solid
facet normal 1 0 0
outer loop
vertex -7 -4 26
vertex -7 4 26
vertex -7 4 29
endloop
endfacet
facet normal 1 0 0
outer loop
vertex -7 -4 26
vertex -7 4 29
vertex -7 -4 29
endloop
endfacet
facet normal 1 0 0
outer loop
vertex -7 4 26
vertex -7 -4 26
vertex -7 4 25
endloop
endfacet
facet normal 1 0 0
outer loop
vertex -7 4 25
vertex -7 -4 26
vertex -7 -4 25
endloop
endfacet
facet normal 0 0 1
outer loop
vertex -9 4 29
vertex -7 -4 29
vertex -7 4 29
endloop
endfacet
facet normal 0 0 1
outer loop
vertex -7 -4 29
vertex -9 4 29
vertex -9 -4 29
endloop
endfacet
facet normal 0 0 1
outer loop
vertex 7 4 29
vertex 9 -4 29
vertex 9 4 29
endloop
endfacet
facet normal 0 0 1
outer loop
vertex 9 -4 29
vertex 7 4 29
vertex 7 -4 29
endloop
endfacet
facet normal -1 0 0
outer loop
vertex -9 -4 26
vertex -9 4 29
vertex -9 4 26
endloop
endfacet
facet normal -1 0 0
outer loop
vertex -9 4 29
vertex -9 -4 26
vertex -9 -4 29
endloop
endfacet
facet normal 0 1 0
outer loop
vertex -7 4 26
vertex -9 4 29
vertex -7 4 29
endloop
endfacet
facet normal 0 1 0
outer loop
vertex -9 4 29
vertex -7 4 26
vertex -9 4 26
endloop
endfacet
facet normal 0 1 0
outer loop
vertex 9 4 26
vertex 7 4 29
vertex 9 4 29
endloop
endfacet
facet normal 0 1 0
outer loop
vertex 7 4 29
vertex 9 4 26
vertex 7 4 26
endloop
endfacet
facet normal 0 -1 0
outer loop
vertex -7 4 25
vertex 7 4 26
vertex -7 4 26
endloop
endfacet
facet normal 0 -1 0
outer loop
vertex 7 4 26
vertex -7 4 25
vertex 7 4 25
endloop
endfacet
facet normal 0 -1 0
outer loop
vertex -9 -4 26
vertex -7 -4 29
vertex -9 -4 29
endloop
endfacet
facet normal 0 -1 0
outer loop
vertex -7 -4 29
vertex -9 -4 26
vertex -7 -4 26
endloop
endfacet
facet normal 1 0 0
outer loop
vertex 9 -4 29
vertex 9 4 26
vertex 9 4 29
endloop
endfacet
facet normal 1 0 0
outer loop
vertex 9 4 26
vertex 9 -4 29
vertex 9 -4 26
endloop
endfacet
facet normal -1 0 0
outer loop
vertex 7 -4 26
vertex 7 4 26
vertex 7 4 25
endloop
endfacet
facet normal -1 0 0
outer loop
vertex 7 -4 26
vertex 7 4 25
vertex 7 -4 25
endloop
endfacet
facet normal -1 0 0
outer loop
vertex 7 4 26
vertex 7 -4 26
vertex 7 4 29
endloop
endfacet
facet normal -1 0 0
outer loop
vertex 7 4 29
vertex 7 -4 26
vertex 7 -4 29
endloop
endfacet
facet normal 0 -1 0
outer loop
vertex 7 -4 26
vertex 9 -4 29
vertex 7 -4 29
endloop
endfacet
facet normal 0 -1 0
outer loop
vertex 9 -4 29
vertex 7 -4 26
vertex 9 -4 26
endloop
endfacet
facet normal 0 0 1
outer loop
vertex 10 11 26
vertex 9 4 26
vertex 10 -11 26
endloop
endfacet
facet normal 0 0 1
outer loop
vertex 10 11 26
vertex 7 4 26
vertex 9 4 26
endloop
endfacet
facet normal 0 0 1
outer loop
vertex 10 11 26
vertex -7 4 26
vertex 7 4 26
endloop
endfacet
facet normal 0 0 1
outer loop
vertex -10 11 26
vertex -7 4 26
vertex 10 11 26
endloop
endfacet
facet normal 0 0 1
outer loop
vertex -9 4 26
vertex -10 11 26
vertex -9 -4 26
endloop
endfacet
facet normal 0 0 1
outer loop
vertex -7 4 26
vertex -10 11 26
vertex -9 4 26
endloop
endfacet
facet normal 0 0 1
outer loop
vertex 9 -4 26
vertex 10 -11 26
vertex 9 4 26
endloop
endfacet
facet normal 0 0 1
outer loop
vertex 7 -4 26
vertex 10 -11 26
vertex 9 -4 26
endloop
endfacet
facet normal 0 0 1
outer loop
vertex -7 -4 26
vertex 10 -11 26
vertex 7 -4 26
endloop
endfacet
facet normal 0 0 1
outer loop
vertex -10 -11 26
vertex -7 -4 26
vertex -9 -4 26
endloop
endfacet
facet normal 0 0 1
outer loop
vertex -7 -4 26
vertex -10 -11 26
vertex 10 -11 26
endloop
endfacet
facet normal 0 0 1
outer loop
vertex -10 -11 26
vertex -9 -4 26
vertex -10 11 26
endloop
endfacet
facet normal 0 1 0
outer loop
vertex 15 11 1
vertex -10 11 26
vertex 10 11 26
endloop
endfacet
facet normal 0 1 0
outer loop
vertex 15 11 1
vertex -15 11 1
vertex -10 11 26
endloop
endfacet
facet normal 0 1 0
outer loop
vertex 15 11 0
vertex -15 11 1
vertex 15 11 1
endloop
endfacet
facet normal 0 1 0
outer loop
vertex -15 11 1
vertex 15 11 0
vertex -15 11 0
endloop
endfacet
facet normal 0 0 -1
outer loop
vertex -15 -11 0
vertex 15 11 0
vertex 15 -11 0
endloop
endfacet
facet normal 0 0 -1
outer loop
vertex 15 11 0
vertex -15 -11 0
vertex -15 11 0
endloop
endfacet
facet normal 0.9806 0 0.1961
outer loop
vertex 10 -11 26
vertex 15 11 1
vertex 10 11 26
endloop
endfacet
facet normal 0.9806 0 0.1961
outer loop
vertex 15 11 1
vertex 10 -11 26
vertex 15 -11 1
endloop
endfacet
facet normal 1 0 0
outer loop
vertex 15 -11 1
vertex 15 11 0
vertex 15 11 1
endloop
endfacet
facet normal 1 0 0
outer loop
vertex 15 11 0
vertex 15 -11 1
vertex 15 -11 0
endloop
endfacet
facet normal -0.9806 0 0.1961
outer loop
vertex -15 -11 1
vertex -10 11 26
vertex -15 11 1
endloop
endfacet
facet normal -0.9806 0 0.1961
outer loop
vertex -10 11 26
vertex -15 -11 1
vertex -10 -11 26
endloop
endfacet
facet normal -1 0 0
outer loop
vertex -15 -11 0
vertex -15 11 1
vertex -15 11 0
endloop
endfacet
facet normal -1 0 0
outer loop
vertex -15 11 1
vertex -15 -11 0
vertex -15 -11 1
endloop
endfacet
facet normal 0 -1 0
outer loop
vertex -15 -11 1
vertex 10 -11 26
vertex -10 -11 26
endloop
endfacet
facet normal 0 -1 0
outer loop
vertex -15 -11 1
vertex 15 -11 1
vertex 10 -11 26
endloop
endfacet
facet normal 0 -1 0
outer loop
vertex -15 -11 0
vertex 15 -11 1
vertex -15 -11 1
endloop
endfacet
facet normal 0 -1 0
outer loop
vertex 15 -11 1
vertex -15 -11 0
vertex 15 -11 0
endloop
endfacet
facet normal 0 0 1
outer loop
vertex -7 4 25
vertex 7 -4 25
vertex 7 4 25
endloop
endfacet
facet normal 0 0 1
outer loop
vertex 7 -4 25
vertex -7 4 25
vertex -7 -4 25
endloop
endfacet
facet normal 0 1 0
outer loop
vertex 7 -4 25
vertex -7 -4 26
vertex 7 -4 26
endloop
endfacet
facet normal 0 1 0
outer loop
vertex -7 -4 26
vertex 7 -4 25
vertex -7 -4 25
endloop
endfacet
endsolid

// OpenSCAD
// ============================
// Screen Support Block with U-Cradle
// ============================

// ---------- Parameters ----------
block_width_top    = 20;   // mm
block_width_bottom = 30;   // mm
block_depth        = 22;   // mm
block_height       = 25;   // mm

cradle_width       = 14;   // mm - inside width for screen edge
cradle_depth       = 8;    // mm
cradle_wall        = 2;    // mm
cradle_height      = 4;    // mm

rounding           = 0.8;

// ---------- Quality ----------
$fn = 64;

// ============================
// Main
// ============================
difference() {
    union() {
        tapered_block();
        cradle_walls();
    }
    cradle_cutout();
}

// ============================
// Tapered Base
// ============================
module tapered_block() {
    hull() {
        translate([
            -block_width_bottom / 2,
            -block_depth / 2,
            0
        ])
        cube([block_width_bottom, block_depth, 1]);

        translate([
            -block_width_top / 2,
            -block_depth / 2,
            block_height
        ])
        cube([block_width_top, block_depth, 1]);
    }
}

// ============================
// Cradle Walls
// ============================
module cradle_walls() {

    // Left wall
    translate([
        -cradle_width / 2 - cradle_wall,
        -cradle_depth / 2,
        block_height
    ])
    cube([cradle_wall, cradle_depth, cradle_height]);

    // Right wall
    translate([
        cradle_width / 2,
        -cradle_depth / 2,
        block_height
    ])
    cube([cradle_wall, cradle_depth, cradle_height]);

    // Back wall
    translate([
        -cradle_width / 2 - cradle_wall,
        cradle_depth / 2 - cradle_wall,
        block_height
    ])
    cube([cradle_width + 2 * cradle_wall, cradle_wall, cradle_height]);
}

// ============================
// Cradle Cutout
// ============================
module cradle_cutout() {
    translate([
        -cradle_width / 2,
        -cradle_depth / 2,
        block_height
    ])
    cube([cradle_width, cradle_depth, cradle_height + 0.1]);
}
